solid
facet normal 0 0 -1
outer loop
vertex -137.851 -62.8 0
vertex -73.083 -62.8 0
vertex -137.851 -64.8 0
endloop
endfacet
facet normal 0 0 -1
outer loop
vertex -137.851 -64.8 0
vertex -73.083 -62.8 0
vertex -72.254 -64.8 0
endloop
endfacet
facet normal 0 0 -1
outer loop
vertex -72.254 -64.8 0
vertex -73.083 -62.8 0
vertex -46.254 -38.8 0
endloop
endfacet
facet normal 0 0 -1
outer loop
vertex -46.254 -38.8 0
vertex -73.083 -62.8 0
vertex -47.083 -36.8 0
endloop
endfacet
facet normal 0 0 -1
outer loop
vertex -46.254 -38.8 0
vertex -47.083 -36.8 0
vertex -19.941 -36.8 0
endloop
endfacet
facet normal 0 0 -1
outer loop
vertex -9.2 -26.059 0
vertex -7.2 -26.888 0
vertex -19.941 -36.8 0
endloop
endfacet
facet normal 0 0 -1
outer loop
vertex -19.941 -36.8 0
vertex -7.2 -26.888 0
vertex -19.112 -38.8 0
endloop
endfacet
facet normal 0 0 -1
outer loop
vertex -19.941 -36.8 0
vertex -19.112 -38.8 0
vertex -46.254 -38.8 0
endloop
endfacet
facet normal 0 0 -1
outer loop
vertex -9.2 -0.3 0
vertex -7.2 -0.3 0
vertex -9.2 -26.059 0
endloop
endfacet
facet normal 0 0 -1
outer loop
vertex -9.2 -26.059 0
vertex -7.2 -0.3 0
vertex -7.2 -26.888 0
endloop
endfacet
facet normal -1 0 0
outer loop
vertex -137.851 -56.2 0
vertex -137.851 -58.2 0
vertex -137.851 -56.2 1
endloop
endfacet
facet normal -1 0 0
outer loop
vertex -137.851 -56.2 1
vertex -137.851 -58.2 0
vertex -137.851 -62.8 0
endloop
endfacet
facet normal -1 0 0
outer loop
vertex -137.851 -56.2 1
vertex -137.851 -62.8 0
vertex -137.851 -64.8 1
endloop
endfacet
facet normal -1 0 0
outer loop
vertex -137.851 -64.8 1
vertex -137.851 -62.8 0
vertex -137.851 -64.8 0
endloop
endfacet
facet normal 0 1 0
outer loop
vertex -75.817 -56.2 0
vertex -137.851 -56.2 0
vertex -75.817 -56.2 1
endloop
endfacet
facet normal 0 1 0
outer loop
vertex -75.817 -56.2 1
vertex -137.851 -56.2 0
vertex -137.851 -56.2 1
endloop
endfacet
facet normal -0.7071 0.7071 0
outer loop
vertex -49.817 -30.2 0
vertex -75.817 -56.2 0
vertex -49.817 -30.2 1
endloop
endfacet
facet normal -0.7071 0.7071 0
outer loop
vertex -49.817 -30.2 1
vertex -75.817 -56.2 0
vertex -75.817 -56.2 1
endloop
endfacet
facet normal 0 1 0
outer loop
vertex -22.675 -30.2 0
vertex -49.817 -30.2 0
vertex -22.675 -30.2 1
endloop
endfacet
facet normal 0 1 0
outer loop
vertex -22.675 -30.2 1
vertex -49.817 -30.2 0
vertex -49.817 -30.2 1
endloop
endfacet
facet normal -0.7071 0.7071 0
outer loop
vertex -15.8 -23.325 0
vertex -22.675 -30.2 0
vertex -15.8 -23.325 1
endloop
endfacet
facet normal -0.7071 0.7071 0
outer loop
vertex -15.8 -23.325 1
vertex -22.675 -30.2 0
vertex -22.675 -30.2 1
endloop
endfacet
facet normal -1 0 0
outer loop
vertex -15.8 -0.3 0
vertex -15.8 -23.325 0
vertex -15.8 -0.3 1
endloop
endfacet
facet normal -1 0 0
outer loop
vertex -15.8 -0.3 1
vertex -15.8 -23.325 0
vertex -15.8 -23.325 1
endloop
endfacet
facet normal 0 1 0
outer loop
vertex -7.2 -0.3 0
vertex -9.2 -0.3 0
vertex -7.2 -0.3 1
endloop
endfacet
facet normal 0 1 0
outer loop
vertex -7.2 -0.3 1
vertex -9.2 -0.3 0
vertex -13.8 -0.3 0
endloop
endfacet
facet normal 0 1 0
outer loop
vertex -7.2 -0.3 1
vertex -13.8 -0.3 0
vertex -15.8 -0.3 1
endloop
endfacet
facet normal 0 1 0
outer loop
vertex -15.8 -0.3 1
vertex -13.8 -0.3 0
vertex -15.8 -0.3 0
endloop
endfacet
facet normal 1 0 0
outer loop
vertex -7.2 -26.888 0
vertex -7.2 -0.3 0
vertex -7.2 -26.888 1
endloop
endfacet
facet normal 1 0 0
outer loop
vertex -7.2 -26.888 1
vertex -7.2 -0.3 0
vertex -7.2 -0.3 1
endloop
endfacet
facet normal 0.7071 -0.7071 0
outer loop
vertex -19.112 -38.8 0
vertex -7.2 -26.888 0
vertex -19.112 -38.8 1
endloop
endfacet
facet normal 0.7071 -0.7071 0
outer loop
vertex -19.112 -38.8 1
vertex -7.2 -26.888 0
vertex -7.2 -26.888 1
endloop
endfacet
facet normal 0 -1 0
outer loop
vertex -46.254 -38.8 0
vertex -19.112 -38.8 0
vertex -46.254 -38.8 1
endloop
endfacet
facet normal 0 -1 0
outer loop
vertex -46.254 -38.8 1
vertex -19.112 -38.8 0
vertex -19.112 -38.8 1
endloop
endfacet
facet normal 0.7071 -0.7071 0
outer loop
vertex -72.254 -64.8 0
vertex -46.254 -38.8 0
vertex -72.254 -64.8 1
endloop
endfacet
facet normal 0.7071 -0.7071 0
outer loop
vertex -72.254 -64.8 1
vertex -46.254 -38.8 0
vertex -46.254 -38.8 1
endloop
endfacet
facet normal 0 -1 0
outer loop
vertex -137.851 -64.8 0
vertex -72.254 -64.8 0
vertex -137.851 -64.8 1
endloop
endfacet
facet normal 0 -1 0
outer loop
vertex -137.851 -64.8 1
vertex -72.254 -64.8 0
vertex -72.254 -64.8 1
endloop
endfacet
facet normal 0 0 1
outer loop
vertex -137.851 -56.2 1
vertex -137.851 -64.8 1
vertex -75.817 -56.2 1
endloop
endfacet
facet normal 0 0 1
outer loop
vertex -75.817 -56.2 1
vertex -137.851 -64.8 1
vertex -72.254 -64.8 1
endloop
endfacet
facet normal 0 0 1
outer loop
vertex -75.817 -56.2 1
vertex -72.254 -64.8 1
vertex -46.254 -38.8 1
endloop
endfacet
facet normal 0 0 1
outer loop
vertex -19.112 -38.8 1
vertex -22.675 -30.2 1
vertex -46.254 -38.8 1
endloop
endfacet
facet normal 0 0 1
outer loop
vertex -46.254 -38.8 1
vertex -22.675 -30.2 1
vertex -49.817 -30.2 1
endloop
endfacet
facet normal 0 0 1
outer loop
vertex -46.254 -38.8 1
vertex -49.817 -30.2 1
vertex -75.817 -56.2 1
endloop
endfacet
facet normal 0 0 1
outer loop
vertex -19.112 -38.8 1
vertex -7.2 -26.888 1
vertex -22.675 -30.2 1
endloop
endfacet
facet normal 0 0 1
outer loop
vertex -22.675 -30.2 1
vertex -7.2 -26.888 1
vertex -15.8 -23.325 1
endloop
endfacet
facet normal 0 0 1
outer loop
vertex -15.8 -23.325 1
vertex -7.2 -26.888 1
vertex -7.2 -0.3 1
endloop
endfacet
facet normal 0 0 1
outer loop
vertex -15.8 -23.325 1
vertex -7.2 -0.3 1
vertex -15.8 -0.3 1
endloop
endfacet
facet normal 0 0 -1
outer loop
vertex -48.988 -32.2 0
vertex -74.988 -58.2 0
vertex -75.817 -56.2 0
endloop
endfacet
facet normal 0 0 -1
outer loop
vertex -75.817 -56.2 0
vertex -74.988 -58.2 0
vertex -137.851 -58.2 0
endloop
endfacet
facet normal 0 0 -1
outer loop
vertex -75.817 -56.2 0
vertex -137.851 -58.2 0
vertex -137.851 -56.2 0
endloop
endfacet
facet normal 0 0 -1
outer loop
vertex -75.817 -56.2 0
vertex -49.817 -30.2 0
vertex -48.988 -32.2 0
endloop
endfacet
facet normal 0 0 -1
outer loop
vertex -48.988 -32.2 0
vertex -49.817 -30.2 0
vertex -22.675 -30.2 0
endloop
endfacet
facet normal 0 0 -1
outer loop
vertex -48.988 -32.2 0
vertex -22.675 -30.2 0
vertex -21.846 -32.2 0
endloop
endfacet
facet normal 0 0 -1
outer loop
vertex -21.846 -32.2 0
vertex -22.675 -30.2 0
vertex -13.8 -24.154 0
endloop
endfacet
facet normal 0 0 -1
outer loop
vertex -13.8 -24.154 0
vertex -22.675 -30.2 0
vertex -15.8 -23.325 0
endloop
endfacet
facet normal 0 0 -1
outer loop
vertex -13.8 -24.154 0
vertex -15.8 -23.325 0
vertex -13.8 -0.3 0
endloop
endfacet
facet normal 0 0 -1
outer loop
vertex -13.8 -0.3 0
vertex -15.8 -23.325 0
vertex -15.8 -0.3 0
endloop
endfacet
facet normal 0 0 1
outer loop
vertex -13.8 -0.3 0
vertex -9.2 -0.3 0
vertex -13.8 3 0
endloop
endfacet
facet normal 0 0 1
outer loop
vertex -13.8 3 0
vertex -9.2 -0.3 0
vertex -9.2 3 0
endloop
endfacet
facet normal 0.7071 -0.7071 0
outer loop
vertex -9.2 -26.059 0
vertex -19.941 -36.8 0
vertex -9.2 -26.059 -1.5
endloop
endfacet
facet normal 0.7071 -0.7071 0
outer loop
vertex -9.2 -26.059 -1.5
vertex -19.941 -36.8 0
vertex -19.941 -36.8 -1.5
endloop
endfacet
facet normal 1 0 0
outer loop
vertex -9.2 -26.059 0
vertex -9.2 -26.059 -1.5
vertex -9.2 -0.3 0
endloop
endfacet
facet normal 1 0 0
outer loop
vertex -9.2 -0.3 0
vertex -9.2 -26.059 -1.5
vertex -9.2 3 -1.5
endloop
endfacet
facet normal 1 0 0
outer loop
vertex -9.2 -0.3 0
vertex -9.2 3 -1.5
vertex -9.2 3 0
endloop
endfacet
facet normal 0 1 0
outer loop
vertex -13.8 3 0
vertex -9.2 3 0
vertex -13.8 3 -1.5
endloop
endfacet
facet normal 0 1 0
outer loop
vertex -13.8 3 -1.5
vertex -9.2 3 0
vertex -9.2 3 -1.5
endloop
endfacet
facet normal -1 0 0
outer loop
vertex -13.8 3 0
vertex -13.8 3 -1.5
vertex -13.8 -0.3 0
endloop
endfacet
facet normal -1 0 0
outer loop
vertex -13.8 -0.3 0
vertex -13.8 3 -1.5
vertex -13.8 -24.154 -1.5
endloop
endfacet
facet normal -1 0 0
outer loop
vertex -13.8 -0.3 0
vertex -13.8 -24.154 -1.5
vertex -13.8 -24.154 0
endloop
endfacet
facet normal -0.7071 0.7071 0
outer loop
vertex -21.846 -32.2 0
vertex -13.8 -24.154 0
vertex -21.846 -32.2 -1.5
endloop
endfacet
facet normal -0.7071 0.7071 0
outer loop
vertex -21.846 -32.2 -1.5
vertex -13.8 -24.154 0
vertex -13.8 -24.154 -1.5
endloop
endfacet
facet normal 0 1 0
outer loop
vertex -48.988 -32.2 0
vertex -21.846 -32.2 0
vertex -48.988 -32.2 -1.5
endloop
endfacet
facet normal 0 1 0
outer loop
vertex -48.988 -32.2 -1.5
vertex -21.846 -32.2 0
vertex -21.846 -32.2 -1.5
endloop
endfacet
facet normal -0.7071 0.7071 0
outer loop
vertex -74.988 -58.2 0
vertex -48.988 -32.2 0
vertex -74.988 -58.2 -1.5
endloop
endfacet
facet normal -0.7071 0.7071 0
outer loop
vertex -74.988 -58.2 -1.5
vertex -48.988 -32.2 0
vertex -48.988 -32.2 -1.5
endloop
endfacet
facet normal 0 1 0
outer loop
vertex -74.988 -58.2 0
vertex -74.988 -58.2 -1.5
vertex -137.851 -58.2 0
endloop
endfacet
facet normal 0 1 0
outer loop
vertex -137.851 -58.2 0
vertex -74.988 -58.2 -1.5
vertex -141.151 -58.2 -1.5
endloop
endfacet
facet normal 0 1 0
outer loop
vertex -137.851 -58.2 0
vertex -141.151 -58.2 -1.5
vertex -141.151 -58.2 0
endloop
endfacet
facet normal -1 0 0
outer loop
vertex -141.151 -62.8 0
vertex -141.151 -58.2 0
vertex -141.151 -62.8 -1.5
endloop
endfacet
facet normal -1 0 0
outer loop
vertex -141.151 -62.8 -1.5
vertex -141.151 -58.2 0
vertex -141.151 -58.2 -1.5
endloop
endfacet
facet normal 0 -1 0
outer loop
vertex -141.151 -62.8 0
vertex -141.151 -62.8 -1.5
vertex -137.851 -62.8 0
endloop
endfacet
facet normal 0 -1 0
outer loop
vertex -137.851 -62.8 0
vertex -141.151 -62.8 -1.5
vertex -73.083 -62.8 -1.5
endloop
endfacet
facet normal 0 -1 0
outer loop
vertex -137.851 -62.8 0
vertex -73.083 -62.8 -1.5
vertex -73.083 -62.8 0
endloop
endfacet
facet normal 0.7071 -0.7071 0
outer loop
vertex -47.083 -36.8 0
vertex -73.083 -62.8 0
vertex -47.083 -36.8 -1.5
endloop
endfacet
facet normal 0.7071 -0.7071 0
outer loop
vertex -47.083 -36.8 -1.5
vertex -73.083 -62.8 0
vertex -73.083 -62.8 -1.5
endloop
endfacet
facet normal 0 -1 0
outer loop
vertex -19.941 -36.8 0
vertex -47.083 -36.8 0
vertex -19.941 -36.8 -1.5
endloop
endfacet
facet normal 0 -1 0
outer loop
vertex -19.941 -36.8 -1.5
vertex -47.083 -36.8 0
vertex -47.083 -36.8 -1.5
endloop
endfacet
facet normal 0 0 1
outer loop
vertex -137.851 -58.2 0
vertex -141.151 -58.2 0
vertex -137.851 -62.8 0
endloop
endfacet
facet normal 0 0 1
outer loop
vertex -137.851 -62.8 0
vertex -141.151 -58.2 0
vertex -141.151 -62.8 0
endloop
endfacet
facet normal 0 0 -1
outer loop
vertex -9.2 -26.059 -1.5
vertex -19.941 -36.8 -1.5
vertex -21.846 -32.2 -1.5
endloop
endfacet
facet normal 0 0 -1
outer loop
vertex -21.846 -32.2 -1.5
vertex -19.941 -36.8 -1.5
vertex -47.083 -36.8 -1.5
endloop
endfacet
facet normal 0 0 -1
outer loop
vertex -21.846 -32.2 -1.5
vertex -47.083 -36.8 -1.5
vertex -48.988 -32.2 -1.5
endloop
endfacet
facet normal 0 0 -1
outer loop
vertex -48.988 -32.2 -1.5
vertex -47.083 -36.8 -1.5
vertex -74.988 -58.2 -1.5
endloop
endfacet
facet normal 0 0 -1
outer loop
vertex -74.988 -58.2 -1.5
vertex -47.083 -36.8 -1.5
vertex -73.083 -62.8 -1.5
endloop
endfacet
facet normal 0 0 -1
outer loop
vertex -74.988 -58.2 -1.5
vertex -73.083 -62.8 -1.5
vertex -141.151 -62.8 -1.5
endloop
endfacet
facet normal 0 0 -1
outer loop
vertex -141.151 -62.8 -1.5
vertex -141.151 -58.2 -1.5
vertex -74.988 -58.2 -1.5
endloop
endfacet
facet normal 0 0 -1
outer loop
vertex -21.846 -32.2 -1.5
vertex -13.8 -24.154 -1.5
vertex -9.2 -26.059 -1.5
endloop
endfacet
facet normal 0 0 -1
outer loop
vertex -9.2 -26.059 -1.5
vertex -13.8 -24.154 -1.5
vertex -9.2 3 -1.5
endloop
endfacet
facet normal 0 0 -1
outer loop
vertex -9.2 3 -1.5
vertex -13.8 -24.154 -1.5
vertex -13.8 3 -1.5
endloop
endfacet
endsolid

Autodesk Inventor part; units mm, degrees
ref_plane "YZ Plane" through (0, 0, 0) normal (1, 0, 0) x (0, 1, 0)
ref_plane "XZ Plane" through (0, 0, 0) normal (0, 1, 0) x (-1, 0, 0)
ref_plane "XY Plane" through (0, 0, 0) normal (0, 0, 1) x (1, 0, 0)
sketch "Эскиз1" plane through (0, 0, 0) normal (0, 0, 1) x (1, 0, 0)
  line L0 (-75.0711, -58) -> (-141.1512, -58) projected
  line L1 (-141.1512, -58) -> (-141.1512, -4.9289) projected
  line L2 (-141.1512, -4.9289) -> (-133.2223, 3) projected
  line L3 (-14, 3) -> (-133.2223, 3) projected
  line L4 (-14, 3) -> (-14, -24.0711) projected
  line L5 (-14, -24.0711) -> (-21.9289, -32) projected
  line L6 (-21.9289, -32) -> (-49.0711, -32) projected
  line L7 (-49.0711, -32) -> (-75.0711, -58) projected
  line L8 (-131.1512, -2) -> (-136.1512, -7) projected
  line L9 (-136.1512, -7) -> (-136.1512, -13.8712) projected
  line L10 (-136.1512, -13.8712) -> (-136.1512, -19.5281) projected
  line L11 (-136.1512, -19.5281) -> (-136.1512, -26.3992) projected
  line L12 (-136.1512, -26.3992) -> (-136.1512, -27) projected
  line L13 (-136.1512, -27) -> (-131.0951, -27) projected
  line L14 (-131.0951, -27) -> (-124.224, -27) projected
  line L15 (-124.224, -27) -> (-118.5671, -27) projected
  line L16 (-118.5671, -27) -> (-111.696, -27) projected
  line L17 (-111.696, -27) -> (-106.0391, -27) projected
  line L18 (-106.0391, -27) -> (-99.168, -27) projected
  line L19 (-99.168, -27) -> (-93.5111, -27) projected
  line L20 (-93.5111, -27) -> (-86.64, -27) projected
  line L21 (-86.64, -27) -> (-80.9831, -27) projected
  line L22 (-80.9831, -27) -> (-74.112, -27) projected
  line L23 (-74.112, -27) -> (-68.4551, -27) projected
  line L24 (-68.4551, -27) -> (-61.584, -27) projected
  line L25 (-61.584, -27) -> (-55.9271, -27) projected
  line L26 (-55.9271, -27) -> (-49.056, -27) projected
  line L27 (-49.056, -27) -> (-43.3991, -27) projected
  line L28 (-43.3991, -27) -> (-36.528, -27) projected
  line L29 (-36.528, -27) -> (-30.8711, -27) projected
  line L30 (-30.8711, -27) -> (-24, -27) projected
  line L31 (-24, -27) -> (-19, -22) projected
  line L32 (-19, -22) -> (-19, -15.1289) projected
  line L33 (-19, -15.1289) -> (-19, -9.472) projected
  line L34 (-19, -9.472) -> (-19, -2.6009) projected
  line L35 (-19, -2.6009) -> (-19, -2) projected
  line L36 (-19, -2) -> (-24.056, -2) projected
  line L37 (-24.056, -2) -> (-30.9271, -2) projected
  line L38 (-30.9271, -2) -> (-36.584, -2) projected
  line L39 (-36.584, -2) -> (-43.4551, -2) projected
  line L40 (-43.4551, -2) -> (-49.112, -2) projected
  line L41 (-49.112, -2) -> (-55.9831, -2) projected
  line L42 (-55.9831, -2) -> (-61.64, -2) projected
  line L43 (-61.64, -2) -> (-68.5111, -2) projected
  line L44 (-68.5111, -2) -> (-74.168, -2) projected
  line L45 (-74.168, -2) -> (-81.0391, -2) projected
  line L46 (-81.0391, -2) -> (-86.696, -2) projected
  line L47 (-86.696, -2) -> (-93.5671, -2) projected
  line L48 (-93.5671, -2) -> (-99.224, -2) projected
  line L49 (-99.224, -2) -> (-106.0951, -2) projected
  line L50 (-106.0951, -2) -> (-111.752, -2) projected
  line L51 (-111.752, -2) -> (-118.6231, -2) projected
  line L52 (-118.6231, -2) -> (-124.28, -2) projected
  line L53 (-124.28, -2) -> (-131.1512, -2) projected
  line L54 (-141.1512, -69.9) -> (-42.8584, -69.9) projected
  line L55 (-141.1512, -63) -> (-141.1512, -69.9) projected
  line L56 (-141.1512, -63) -> (-73, -63) projected
  line L57 (-73, -63) -> (-47, -37) projected
  line L58 (-47, -37) -> (-19.8579, -37) projected
  line L59 (-19.8579, -37) -> (-9, -26.1421) projected
  line L60 (-9, -26.1421) -> (-9, 3) projected
  line L61 (-9, 3) -> (-2, 3) projected
  line L62 (-2, -29.0416) -> (-2, 3) projected
  line L63 (-42.8584, -69.9) -> (-2, -29.0416) projected
  line L64 (-73.0828, -62.8) -> (-141.3512, -62.8)
  line L65 (-141.3512, -62.8) -> (-141.3512, -70.1)
  line L66 (-141.3512, -70.1) -> (-42.7755, -70.1)
  line L67 (-42.7755, -70.1) -> (-1.8, -29.1245)
  line L68 (-1.8, -29.1245) -> (-1.8, 3.2)
  line L69 (-1.8, 3.2) -> (-9.2, 3.2)
  line L70 (-9.2, 3.2) -> (-9.2, -26.0593)
  line L71 (-9.2, -26.0593) -> (-19.9407, -36.8)
  line L72 (-19.9407, -36.8) -> (-47.0828, -36.8)
  line L73 (-47.0828, -36.8) -> (-73.0828, -62.8)
  line L74 (-141.3512, -58.2) -> (-74.9882, -58.2)
  line L75 (-74.9882, -58.2) -> (-48.9882, -32.2)
  line L76 (-48.9882, -32.2) -> (-21.8461, -32.2)
  line L77 (-21.8461, -32.2) -> (-13.8, -24.1539)
  line L78 (-13.8, -24.1539) -> (-13.8, 3.2)
  line L79 (-13.8, 3.2) -> (-133.3051, 3.2)
  line L80 (-133.3051, 3.2) -> (-141.3512, -4.8461)
  line L81 (-141.3512, -4.8461) -> (-141.3512, -58.2)
  line L82 (-141.1512, -58) -> (-141.1512, -66.7) projected
  line L83 (-5.3, 3) -> (-14, 3) projected
  line L84 (-44.9289, -42) -> (-65.9289, -63) projected
  line L85 (-65.9289, -63) -> (-45.8579, -63) projected
  line L86 (-45.8579, -63) -> (-24.8579, -42) projected
  line L87 (-24.8579, -42) -> (-44.9289, -42) projected
  point P0 (-9.2, 3)
  point P1 (-13.8, 3)
  point P2 (-141.1512, -58.2)
  point P3 (-141.1512, -62.8)
  dimension "d10" = 0.2
  dimension "d11" = 0.2
extrude "Выдавливание1" add sketch "Эскиз1" against normal blind 1.5 contours L74 L75 L76 L77 L78 L83 L70 L71 L72 L73 L64 L82
sketch "Эскиз2" plane through (0, 0, 0) normal (0, 0, 1) x (1, 0, 0)
  line L0 (-19.9407, -36.8) -> (-47.0828, -36.8) projected
  line L1 (-47.0828, -36.8) -> (-73.0828, -62.8) projected
  line L2 (-73.0828, -62.8) -> (-141.1512, -62.8) projected
  line L3 (-141.1512, -62.8) -> (-141.1512, -58.2) projected
  line L4 (-141.1512, -58.2) -> (-74.9882, -58.2) projected
  line L5 (-74.9882, -58.2) -> (-48.9882, -32.2) projected
  line L6 (-48.9882, -32.2) -> (-21.8461, -32.2) projected
  line L7 (-21.8461, -32.2) -> (-13.8, -24.1539) projected
  line L8 (-13.8, -24.1539) -> (-13.8, 3) projected
  line L9 (-13.8, 3) -> (-9.2, 3) projected
  line L10 (-9.2, 3) -> (-9.2, -26.0593) projected
  line L11 (-9.2, -26.0593) -> (-19.9407, -36.8) projected
  line L12 (-75.8167, -56.2) -> (-143.1512, -56.2)
  line L13 (-143.1512, -56.2) -> (-143.1512, -64.8)
  line L14 (-143.1512, -64.8) -> (-72.2544, -64.8)
  line L15 (-72.2544, -64.8) -> (-46.2544, -38.8)
  line L16 (-46.2544, -38.8) -> (-19.1123, -38.8)
  line L17 (-19.1123, -38.8) -> (-7.2, -26.8877)
  line L18 (-7.2, -26.8877) -> (-7.2, 5)
  line L19 (-7.2, 5) -> (-15.8, 5)
  line L20 (-15.8, 5) -> (-15.8, -23.3255)
  line L21 (-15.8, -23.3255) -> (-22.6745, -30.2)
  line L22 (-22.6745, -30.2) -> (-49.8167, -30.2)
  line L23 (-49.8167, -30.2) -> (-75.8167, -56.2)
  line L24 (-138.1512, -66.9) -> (-138.1512, -63) projected
  line L25 (-14, 0) -> (-5.3, 0) projected
  line L26 (-7.2, 0) -> (-7.2, -0.3)
  line L27 (-7.2, -0.3) -> (-15.8, -0.3)
  line L28 (-138.1512, -64.8) -> (-137.8512, -64.8)
  line L29 (-137.8512, -64.8) -> (-137.8512, -56.2)
  dimension "d12" = 2
  dimension "d13" = 0.3
  dimension "d14" = 0.3
extrude "Выдавливание2" add sketch "Эскиз2" along normal blind 1 contours L11 L10 L27 L18 L17 L16 L15 L14 L29 L2 L1 L0 | L0 L1 L2 L29 L4 L5 L6 L7 L8 L27 L10 L11 | L8 L7 L6 L5 L4 L29 L12 L23 L22 L21 L20 L27
properties part number "right_line"
